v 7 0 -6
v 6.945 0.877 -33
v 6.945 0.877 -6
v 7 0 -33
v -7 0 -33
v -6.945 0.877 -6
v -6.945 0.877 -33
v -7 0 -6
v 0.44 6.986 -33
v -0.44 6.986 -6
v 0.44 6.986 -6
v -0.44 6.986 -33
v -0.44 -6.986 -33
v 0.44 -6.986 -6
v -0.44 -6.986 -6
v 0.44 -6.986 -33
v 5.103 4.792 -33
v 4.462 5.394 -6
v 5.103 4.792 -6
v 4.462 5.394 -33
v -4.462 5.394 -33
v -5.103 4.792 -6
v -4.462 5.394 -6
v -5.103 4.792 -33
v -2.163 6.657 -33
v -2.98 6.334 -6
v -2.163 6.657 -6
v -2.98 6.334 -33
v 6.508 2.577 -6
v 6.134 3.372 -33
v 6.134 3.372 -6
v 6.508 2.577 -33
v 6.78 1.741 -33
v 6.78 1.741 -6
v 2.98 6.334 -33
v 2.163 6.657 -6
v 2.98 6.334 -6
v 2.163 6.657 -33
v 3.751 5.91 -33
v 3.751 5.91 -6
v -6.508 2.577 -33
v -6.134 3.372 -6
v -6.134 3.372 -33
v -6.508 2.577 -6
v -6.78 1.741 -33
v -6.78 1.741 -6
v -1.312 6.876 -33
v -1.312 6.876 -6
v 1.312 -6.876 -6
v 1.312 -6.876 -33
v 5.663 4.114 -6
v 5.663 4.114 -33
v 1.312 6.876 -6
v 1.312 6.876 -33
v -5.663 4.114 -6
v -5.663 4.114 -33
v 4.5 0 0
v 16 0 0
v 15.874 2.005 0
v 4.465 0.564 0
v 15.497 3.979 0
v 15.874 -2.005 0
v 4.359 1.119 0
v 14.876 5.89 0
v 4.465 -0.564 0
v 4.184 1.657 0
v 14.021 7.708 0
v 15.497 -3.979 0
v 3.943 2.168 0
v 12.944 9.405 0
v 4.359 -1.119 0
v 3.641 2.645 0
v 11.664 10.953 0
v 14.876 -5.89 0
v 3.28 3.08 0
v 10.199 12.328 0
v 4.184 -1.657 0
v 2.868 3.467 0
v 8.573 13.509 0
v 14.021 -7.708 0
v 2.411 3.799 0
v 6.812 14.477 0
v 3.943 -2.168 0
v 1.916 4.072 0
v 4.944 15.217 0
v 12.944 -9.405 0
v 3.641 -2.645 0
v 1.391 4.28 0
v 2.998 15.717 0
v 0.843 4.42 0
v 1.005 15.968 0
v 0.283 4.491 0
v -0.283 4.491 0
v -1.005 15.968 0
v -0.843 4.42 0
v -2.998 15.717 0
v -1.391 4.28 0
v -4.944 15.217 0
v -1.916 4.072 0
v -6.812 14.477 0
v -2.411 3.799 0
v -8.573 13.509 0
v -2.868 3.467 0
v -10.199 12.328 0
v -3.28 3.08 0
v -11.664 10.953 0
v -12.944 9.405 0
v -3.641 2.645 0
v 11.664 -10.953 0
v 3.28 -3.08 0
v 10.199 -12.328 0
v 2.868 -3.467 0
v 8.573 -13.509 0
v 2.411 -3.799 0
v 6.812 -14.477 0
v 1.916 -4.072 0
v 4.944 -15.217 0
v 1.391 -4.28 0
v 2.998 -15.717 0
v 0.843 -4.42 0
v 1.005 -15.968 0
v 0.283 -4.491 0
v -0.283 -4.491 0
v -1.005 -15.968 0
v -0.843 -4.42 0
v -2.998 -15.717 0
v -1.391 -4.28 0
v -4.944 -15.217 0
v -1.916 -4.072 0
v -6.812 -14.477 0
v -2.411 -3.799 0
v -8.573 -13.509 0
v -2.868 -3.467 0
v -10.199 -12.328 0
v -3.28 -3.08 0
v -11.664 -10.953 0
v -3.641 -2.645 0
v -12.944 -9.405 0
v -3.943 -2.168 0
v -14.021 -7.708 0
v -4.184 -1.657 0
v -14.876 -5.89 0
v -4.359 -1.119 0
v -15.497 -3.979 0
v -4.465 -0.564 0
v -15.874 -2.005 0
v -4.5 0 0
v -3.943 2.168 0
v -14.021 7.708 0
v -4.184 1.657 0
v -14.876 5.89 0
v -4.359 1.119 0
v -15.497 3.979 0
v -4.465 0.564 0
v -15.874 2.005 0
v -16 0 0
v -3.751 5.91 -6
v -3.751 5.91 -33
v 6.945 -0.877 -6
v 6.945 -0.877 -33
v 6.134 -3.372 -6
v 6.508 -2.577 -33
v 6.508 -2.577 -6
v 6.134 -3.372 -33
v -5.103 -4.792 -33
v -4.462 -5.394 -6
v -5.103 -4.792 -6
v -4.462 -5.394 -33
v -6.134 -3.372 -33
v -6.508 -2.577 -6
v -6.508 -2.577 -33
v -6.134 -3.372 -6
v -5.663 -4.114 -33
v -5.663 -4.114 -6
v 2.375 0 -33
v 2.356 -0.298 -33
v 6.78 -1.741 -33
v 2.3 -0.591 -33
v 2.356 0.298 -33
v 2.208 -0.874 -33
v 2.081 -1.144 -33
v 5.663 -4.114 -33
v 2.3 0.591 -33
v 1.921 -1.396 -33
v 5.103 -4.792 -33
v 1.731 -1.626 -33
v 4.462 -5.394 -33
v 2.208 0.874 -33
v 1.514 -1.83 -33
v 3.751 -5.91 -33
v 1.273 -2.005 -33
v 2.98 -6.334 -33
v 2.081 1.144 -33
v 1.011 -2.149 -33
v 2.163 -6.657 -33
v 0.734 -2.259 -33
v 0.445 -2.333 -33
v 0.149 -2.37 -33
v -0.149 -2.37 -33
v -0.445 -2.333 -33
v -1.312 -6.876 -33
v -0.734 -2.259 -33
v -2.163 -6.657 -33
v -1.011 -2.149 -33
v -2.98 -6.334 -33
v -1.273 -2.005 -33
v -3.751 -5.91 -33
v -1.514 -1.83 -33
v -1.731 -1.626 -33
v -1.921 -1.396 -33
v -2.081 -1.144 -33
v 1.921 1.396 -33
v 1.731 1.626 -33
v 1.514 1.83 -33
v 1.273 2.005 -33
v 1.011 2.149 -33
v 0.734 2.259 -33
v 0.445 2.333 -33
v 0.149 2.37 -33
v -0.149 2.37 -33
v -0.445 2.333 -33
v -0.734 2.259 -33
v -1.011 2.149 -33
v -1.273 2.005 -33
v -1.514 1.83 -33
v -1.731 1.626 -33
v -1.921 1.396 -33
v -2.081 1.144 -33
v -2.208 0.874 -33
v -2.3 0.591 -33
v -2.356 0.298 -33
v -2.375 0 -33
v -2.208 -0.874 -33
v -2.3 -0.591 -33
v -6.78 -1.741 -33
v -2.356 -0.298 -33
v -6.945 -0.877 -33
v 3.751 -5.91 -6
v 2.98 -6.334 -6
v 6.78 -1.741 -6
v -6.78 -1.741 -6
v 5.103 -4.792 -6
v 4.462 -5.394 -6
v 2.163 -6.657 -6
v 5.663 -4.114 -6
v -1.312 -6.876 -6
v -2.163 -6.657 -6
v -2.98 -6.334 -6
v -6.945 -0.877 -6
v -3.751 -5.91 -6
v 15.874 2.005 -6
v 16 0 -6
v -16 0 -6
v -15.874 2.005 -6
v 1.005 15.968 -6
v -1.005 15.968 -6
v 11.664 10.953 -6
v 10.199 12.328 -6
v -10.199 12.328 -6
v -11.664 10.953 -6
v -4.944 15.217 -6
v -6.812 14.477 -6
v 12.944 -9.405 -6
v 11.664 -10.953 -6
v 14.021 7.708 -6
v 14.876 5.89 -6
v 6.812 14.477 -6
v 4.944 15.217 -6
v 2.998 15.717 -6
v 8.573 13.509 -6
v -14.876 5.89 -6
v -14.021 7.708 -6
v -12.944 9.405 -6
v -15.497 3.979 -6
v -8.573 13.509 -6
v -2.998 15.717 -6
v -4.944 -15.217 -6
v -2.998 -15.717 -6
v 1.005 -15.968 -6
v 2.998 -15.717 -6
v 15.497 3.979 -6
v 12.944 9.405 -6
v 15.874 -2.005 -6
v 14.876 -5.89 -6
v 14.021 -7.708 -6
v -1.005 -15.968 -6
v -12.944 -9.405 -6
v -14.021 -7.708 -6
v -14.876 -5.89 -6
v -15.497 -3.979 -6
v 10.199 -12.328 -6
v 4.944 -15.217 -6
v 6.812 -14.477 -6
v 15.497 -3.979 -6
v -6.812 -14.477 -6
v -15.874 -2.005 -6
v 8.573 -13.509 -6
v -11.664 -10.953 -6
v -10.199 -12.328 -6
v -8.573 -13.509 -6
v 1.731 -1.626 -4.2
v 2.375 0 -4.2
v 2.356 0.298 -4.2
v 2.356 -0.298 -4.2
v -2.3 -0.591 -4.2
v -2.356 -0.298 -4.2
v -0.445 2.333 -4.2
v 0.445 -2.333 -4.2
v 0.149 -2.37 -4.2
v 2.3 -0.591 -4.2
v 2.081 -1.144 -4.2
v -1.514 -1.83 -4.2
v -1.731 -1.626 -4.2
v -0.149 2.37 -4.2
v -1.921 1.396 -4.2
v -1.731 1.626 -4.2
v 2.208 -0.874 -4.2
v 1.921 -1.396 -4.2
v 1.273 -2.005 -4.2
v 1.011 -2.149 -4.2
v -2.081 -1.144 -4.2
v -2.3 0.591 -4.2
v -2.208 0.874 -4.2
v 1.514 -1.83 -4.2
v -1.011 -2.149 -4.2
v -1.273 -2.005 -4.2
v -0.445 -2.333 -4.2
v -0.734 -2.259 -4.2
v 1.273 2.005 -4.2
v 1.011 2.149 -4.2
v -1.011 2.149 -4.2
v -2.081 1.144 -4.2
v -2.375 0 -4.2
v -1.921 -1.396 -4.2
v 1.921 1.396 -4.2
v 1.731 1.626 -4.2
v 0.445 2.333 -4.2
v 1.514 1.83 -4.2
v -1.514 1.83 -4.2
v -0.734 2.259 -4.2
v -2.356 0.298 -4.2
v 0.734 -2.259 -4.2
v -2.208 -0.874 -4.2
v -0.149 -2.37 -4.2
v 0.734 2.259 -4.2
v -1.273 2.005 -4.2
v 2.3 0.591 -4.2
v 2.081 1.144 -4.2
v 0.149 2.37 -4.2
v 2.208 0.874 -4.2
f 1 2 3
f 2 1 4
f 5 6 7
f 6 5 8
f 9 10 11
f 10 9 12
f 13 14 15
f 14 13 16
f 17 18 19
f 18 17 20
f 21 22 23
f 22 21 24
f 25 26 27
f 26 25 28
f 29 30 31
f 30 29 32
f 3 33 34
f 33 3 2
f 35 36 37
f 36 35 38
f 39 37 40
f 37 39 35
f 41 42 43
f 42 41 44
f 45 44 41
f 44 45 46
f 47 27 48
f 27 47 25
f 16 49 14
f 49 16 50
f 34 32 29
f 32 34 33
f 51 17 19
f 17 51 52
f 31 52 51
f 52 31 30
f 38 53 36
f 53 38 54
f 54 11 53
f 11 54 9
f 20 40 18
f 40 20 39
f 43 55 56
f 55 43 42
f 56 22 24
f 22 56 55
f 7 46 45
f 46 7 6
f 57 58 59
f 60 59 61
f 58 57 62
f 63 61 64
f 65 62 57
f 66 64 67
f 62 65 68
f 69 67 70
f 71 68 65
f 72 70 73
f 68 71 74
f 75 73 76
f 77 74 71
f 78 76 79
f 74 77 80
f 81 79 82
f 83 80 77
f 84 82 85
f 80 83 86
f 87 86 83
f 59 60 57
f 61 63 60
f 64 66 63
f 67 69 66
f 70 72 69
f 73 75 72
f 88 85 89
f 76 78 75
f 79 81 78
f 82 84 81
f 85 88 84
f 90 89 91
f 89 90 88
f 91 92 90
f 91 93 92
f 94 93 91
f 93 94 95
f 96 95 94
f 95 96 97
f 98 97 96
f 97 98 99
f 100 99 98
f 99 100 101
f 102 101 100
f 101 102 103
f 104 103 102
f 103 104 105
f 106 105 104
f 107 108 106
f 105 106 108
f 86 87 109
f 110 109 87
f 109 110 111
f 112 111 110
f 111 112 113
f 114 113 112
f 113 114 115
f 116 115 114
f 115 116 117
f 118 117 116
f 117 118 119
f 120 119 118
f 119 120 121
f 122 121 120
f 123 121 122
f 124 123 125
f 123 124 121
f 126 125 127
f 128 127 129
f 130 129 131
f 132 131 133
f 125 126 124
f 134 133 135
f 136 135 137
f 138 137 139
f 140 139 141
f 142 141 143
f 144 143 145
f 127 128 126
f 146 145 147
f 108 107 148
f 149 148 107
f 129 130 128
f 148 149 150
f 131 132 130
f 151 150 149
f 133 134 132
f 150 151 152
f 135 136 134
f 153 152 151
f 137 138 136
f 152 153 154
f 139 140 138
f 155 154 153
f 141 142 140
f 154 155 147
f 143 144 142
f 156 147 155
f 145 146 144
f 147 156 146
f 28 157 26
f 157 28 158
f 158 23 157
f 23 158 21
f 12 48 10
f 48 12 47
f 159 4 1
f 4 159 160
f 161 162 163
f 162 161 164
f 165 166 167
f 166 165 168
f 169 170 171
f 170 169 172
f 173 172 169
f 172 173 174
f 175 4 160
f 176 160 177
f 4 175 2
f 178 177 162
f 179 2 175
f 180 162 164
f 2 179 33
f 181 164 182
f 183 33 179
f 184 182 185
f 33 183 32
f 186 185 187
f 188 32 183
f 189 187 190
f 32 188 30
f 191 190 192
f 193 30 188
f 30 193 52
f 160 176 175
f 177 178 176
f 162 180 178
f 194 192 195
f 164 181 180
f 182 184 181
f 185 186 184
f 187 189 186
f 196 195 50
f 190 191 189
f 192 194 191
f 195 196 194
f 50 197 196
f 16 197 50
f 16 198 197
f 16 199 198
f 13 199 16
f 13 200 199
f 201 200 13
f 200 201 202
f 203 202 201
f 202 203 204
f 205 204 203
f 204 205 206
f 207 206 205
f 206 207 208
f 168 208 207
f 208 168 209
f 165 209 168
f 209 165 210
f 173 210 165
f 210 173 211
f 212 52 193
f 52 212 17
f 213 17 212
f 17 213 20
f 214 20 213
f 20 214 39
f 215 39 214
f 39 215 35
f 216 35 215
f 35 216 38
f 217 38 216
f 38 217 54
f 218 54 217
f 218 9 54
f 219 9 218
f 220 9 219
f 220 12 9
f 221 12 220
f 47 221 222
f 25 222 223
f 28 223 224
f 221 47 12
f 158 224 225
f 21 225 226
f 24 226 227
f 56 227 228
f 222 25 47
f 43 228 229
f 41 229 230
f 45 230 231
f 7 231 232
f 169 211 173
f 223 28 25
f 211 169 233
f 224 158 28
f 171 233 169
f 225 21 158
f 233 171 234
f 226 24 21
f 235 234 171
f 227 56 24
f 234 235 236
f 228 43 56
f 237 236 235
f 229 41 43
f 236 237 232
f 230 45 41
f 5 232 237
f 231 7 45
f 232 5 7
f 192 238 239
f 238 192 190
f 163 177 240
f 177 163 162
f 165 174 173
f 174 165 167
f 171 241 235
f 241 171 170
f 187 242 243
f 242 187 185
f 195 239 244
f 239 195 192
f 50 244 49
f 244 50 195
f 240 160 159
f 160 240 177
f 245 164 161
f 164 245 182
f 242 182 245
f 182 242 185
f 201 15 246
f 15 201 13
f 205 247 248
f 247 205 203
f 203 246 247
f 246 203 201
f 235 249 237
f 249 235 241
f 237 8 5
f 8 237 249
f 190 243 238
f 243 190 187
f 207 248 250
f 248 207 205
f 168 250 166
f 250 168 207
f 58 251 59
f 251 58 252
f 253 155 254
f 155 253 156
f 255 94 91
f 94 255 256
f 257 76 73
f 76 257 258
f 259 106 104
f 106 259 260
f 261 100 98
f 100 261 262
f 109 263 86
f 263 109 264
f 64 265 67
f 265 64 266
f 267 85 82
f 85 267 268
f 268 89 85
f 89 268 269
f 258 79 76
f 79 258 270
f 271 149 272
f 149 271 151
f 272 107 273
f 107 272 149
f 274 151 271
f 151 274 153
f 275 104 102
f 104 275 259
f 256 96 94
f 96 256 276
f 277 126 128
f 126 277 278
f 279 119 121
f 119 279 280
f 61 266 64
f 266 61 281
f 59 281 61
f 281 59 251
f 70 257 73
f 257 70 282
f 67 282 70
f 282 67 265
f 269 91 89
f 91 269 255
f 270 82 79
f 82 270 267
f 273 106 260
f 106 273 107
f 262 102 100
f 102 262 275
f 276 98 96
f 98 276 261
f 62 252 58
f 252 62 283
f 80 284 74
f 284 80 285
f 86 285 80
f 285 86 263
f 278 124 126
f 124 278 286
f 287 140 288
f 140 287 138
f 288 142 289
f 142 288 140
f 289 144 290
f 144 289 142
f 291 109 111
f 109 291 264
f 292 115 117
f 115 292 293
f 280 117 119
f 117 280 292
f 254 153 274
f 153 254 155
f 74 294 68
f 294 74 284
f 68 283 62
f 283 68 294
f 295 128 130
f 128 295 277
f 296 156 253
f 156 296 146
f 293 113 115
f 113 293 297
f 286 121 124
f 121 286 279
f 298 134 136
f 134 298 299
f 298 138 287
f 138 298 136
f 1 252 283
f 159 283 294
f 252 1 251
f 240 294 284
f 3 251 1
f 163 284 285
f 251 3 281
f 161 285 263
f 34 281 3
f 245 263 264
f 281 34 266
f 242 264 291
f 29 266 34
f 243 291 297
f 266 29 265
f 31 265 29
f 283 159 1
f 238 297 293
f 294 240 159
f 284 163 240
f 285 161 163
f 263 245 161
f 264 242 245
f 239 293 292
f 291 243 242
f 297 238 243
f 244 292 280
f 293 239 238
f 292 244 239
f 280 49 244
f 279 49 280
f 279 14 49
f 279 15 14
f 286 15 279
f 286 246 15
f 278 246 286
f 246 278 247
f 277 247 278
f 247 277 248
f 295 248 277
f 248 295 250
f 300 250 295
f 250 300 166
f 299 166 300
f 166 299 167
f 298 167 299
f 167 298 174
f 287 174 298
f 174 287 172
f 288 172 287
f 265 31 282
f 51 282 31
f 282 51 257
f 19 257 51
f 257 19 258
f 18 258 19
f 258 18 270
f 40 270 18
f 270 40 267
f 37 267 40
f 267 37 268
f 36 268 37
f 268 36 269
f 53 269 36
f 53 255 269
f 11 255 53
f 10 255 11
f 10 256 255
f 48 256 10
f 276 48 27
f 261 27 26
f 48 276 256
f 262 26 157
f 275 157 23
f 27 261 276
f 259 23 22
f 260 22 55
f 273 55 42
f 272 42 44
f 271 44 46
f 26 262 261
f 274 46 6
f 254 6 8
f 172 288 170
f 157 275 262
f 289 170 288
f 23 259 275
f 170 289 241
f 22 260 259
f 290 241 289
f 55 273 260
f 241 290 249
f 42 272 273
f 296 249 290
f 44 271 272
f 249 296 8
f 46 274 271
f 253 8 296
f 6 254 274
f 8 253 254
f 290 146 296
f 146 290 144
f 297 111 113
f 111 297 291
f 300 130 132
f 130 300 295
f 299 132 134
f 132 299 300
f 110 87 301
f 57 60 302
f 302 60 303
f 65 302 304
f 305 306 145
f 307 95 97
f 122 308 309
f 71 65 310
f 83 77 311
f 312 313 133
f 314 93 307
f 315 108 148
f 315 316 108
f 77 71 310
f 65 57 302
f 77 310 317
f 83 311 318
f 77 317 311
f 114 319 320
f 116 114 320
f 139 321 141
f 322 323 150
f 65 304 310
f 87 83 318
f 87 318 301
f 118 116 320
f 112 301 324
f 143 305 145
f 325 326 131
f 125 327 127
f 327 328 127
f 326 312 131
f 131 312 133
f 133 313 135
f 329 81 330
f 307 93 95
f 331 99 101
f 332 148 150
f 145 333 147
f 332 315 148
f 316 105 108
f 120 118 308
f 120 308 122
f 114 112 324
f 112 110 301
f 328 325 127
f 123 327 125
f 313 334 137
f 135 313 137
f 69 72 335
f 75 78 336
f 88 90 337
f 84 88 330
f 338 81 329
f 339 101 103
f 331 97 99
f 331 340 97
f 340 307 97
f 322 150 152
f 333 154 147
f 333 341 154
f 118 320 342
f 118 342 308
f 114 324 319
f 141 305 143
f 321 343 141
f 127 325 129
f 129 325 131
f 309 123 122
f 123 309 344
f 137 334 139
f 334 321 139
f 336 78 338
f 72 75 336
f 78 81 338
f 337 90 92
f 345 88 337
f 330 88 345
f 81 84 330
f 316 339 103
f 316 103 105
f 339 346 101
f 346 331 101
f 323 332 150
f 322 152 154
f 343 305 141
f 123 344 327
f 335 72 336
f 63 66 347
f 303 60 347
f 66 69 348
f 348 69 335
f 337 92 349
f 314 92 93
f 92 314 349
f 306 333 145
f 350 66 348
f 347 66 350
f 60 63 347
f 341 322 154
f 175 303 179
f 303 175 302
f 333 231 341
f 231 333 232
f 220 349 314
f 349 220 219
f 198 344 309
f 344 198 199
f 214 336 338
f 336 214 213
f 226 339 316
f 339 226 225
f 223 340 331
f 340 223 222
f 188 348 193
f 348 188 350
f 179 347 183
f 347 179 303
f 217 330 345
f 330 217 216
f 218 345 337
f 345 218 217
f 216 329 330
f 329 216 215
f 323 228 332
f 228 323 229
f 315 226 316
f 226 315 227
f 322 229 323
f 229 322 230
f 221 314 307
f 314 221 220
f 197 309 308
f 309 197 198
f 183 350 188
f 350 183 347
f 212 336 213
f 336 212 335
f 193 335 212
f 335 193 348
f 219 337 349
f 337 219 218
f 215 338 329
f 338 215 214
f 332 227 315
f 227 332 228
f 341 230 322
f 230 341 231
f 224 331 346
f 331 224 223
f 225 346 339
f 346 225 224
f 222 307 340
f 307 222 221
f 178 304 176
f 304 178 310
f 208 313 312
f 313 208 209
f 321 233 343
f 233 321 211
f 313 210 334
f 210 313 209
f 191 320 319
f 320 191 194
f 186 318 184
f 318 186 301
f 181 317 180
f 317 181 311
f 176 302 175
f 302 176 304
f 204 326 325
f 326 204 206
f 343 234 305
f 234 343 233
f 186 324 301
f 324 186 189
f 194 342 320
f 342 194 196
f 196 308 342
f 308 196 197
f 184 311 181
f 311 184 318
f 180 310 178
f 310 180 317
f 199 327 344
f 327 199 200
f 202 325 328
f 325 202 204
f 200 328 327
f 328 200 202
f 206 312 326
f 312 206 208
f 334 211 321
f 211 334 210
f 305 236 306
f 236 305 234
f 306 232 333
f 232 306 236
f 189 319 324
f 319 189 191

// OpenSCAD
$fn = 50;


difference() {
	union() {
		translate(v = [0, 0, -33.0000000000]) {
			cylinder(h = 33, r = 7.0000000000);
		}
		translate(v = [0, 0, -6.0000000000]) {
			cylinder(h = 6, r = 16.0000000000);
		}
	}
	union() {
		translate(v = [0, 0, 0]) {
			rotate(a = [0, 0, 0]) {
				difference() {
					union() {
						#translate(v = [0, 0, -33.0000000000]) {
							cylinder(h = 33, r = 2.2500000000);
						}
						#translate(v = [0, 0, -4.2000000000]) {
							cylinder(h = 4.2000000000, r = 7.0000000000, r1 = 2.3750000000, r2 = 4.5000000000);
						}
						#translate(v = [0, 0, -33.0000000000]) {
							cylinder(h = 33, r = 2.3750000000);
						}
						#translate(v = [0, 0, -33.0000000000]) {
							cylinder(h = 33, r = 2.2500000000);
						}
					}
					union();
				}
			}
		}
	}
}
